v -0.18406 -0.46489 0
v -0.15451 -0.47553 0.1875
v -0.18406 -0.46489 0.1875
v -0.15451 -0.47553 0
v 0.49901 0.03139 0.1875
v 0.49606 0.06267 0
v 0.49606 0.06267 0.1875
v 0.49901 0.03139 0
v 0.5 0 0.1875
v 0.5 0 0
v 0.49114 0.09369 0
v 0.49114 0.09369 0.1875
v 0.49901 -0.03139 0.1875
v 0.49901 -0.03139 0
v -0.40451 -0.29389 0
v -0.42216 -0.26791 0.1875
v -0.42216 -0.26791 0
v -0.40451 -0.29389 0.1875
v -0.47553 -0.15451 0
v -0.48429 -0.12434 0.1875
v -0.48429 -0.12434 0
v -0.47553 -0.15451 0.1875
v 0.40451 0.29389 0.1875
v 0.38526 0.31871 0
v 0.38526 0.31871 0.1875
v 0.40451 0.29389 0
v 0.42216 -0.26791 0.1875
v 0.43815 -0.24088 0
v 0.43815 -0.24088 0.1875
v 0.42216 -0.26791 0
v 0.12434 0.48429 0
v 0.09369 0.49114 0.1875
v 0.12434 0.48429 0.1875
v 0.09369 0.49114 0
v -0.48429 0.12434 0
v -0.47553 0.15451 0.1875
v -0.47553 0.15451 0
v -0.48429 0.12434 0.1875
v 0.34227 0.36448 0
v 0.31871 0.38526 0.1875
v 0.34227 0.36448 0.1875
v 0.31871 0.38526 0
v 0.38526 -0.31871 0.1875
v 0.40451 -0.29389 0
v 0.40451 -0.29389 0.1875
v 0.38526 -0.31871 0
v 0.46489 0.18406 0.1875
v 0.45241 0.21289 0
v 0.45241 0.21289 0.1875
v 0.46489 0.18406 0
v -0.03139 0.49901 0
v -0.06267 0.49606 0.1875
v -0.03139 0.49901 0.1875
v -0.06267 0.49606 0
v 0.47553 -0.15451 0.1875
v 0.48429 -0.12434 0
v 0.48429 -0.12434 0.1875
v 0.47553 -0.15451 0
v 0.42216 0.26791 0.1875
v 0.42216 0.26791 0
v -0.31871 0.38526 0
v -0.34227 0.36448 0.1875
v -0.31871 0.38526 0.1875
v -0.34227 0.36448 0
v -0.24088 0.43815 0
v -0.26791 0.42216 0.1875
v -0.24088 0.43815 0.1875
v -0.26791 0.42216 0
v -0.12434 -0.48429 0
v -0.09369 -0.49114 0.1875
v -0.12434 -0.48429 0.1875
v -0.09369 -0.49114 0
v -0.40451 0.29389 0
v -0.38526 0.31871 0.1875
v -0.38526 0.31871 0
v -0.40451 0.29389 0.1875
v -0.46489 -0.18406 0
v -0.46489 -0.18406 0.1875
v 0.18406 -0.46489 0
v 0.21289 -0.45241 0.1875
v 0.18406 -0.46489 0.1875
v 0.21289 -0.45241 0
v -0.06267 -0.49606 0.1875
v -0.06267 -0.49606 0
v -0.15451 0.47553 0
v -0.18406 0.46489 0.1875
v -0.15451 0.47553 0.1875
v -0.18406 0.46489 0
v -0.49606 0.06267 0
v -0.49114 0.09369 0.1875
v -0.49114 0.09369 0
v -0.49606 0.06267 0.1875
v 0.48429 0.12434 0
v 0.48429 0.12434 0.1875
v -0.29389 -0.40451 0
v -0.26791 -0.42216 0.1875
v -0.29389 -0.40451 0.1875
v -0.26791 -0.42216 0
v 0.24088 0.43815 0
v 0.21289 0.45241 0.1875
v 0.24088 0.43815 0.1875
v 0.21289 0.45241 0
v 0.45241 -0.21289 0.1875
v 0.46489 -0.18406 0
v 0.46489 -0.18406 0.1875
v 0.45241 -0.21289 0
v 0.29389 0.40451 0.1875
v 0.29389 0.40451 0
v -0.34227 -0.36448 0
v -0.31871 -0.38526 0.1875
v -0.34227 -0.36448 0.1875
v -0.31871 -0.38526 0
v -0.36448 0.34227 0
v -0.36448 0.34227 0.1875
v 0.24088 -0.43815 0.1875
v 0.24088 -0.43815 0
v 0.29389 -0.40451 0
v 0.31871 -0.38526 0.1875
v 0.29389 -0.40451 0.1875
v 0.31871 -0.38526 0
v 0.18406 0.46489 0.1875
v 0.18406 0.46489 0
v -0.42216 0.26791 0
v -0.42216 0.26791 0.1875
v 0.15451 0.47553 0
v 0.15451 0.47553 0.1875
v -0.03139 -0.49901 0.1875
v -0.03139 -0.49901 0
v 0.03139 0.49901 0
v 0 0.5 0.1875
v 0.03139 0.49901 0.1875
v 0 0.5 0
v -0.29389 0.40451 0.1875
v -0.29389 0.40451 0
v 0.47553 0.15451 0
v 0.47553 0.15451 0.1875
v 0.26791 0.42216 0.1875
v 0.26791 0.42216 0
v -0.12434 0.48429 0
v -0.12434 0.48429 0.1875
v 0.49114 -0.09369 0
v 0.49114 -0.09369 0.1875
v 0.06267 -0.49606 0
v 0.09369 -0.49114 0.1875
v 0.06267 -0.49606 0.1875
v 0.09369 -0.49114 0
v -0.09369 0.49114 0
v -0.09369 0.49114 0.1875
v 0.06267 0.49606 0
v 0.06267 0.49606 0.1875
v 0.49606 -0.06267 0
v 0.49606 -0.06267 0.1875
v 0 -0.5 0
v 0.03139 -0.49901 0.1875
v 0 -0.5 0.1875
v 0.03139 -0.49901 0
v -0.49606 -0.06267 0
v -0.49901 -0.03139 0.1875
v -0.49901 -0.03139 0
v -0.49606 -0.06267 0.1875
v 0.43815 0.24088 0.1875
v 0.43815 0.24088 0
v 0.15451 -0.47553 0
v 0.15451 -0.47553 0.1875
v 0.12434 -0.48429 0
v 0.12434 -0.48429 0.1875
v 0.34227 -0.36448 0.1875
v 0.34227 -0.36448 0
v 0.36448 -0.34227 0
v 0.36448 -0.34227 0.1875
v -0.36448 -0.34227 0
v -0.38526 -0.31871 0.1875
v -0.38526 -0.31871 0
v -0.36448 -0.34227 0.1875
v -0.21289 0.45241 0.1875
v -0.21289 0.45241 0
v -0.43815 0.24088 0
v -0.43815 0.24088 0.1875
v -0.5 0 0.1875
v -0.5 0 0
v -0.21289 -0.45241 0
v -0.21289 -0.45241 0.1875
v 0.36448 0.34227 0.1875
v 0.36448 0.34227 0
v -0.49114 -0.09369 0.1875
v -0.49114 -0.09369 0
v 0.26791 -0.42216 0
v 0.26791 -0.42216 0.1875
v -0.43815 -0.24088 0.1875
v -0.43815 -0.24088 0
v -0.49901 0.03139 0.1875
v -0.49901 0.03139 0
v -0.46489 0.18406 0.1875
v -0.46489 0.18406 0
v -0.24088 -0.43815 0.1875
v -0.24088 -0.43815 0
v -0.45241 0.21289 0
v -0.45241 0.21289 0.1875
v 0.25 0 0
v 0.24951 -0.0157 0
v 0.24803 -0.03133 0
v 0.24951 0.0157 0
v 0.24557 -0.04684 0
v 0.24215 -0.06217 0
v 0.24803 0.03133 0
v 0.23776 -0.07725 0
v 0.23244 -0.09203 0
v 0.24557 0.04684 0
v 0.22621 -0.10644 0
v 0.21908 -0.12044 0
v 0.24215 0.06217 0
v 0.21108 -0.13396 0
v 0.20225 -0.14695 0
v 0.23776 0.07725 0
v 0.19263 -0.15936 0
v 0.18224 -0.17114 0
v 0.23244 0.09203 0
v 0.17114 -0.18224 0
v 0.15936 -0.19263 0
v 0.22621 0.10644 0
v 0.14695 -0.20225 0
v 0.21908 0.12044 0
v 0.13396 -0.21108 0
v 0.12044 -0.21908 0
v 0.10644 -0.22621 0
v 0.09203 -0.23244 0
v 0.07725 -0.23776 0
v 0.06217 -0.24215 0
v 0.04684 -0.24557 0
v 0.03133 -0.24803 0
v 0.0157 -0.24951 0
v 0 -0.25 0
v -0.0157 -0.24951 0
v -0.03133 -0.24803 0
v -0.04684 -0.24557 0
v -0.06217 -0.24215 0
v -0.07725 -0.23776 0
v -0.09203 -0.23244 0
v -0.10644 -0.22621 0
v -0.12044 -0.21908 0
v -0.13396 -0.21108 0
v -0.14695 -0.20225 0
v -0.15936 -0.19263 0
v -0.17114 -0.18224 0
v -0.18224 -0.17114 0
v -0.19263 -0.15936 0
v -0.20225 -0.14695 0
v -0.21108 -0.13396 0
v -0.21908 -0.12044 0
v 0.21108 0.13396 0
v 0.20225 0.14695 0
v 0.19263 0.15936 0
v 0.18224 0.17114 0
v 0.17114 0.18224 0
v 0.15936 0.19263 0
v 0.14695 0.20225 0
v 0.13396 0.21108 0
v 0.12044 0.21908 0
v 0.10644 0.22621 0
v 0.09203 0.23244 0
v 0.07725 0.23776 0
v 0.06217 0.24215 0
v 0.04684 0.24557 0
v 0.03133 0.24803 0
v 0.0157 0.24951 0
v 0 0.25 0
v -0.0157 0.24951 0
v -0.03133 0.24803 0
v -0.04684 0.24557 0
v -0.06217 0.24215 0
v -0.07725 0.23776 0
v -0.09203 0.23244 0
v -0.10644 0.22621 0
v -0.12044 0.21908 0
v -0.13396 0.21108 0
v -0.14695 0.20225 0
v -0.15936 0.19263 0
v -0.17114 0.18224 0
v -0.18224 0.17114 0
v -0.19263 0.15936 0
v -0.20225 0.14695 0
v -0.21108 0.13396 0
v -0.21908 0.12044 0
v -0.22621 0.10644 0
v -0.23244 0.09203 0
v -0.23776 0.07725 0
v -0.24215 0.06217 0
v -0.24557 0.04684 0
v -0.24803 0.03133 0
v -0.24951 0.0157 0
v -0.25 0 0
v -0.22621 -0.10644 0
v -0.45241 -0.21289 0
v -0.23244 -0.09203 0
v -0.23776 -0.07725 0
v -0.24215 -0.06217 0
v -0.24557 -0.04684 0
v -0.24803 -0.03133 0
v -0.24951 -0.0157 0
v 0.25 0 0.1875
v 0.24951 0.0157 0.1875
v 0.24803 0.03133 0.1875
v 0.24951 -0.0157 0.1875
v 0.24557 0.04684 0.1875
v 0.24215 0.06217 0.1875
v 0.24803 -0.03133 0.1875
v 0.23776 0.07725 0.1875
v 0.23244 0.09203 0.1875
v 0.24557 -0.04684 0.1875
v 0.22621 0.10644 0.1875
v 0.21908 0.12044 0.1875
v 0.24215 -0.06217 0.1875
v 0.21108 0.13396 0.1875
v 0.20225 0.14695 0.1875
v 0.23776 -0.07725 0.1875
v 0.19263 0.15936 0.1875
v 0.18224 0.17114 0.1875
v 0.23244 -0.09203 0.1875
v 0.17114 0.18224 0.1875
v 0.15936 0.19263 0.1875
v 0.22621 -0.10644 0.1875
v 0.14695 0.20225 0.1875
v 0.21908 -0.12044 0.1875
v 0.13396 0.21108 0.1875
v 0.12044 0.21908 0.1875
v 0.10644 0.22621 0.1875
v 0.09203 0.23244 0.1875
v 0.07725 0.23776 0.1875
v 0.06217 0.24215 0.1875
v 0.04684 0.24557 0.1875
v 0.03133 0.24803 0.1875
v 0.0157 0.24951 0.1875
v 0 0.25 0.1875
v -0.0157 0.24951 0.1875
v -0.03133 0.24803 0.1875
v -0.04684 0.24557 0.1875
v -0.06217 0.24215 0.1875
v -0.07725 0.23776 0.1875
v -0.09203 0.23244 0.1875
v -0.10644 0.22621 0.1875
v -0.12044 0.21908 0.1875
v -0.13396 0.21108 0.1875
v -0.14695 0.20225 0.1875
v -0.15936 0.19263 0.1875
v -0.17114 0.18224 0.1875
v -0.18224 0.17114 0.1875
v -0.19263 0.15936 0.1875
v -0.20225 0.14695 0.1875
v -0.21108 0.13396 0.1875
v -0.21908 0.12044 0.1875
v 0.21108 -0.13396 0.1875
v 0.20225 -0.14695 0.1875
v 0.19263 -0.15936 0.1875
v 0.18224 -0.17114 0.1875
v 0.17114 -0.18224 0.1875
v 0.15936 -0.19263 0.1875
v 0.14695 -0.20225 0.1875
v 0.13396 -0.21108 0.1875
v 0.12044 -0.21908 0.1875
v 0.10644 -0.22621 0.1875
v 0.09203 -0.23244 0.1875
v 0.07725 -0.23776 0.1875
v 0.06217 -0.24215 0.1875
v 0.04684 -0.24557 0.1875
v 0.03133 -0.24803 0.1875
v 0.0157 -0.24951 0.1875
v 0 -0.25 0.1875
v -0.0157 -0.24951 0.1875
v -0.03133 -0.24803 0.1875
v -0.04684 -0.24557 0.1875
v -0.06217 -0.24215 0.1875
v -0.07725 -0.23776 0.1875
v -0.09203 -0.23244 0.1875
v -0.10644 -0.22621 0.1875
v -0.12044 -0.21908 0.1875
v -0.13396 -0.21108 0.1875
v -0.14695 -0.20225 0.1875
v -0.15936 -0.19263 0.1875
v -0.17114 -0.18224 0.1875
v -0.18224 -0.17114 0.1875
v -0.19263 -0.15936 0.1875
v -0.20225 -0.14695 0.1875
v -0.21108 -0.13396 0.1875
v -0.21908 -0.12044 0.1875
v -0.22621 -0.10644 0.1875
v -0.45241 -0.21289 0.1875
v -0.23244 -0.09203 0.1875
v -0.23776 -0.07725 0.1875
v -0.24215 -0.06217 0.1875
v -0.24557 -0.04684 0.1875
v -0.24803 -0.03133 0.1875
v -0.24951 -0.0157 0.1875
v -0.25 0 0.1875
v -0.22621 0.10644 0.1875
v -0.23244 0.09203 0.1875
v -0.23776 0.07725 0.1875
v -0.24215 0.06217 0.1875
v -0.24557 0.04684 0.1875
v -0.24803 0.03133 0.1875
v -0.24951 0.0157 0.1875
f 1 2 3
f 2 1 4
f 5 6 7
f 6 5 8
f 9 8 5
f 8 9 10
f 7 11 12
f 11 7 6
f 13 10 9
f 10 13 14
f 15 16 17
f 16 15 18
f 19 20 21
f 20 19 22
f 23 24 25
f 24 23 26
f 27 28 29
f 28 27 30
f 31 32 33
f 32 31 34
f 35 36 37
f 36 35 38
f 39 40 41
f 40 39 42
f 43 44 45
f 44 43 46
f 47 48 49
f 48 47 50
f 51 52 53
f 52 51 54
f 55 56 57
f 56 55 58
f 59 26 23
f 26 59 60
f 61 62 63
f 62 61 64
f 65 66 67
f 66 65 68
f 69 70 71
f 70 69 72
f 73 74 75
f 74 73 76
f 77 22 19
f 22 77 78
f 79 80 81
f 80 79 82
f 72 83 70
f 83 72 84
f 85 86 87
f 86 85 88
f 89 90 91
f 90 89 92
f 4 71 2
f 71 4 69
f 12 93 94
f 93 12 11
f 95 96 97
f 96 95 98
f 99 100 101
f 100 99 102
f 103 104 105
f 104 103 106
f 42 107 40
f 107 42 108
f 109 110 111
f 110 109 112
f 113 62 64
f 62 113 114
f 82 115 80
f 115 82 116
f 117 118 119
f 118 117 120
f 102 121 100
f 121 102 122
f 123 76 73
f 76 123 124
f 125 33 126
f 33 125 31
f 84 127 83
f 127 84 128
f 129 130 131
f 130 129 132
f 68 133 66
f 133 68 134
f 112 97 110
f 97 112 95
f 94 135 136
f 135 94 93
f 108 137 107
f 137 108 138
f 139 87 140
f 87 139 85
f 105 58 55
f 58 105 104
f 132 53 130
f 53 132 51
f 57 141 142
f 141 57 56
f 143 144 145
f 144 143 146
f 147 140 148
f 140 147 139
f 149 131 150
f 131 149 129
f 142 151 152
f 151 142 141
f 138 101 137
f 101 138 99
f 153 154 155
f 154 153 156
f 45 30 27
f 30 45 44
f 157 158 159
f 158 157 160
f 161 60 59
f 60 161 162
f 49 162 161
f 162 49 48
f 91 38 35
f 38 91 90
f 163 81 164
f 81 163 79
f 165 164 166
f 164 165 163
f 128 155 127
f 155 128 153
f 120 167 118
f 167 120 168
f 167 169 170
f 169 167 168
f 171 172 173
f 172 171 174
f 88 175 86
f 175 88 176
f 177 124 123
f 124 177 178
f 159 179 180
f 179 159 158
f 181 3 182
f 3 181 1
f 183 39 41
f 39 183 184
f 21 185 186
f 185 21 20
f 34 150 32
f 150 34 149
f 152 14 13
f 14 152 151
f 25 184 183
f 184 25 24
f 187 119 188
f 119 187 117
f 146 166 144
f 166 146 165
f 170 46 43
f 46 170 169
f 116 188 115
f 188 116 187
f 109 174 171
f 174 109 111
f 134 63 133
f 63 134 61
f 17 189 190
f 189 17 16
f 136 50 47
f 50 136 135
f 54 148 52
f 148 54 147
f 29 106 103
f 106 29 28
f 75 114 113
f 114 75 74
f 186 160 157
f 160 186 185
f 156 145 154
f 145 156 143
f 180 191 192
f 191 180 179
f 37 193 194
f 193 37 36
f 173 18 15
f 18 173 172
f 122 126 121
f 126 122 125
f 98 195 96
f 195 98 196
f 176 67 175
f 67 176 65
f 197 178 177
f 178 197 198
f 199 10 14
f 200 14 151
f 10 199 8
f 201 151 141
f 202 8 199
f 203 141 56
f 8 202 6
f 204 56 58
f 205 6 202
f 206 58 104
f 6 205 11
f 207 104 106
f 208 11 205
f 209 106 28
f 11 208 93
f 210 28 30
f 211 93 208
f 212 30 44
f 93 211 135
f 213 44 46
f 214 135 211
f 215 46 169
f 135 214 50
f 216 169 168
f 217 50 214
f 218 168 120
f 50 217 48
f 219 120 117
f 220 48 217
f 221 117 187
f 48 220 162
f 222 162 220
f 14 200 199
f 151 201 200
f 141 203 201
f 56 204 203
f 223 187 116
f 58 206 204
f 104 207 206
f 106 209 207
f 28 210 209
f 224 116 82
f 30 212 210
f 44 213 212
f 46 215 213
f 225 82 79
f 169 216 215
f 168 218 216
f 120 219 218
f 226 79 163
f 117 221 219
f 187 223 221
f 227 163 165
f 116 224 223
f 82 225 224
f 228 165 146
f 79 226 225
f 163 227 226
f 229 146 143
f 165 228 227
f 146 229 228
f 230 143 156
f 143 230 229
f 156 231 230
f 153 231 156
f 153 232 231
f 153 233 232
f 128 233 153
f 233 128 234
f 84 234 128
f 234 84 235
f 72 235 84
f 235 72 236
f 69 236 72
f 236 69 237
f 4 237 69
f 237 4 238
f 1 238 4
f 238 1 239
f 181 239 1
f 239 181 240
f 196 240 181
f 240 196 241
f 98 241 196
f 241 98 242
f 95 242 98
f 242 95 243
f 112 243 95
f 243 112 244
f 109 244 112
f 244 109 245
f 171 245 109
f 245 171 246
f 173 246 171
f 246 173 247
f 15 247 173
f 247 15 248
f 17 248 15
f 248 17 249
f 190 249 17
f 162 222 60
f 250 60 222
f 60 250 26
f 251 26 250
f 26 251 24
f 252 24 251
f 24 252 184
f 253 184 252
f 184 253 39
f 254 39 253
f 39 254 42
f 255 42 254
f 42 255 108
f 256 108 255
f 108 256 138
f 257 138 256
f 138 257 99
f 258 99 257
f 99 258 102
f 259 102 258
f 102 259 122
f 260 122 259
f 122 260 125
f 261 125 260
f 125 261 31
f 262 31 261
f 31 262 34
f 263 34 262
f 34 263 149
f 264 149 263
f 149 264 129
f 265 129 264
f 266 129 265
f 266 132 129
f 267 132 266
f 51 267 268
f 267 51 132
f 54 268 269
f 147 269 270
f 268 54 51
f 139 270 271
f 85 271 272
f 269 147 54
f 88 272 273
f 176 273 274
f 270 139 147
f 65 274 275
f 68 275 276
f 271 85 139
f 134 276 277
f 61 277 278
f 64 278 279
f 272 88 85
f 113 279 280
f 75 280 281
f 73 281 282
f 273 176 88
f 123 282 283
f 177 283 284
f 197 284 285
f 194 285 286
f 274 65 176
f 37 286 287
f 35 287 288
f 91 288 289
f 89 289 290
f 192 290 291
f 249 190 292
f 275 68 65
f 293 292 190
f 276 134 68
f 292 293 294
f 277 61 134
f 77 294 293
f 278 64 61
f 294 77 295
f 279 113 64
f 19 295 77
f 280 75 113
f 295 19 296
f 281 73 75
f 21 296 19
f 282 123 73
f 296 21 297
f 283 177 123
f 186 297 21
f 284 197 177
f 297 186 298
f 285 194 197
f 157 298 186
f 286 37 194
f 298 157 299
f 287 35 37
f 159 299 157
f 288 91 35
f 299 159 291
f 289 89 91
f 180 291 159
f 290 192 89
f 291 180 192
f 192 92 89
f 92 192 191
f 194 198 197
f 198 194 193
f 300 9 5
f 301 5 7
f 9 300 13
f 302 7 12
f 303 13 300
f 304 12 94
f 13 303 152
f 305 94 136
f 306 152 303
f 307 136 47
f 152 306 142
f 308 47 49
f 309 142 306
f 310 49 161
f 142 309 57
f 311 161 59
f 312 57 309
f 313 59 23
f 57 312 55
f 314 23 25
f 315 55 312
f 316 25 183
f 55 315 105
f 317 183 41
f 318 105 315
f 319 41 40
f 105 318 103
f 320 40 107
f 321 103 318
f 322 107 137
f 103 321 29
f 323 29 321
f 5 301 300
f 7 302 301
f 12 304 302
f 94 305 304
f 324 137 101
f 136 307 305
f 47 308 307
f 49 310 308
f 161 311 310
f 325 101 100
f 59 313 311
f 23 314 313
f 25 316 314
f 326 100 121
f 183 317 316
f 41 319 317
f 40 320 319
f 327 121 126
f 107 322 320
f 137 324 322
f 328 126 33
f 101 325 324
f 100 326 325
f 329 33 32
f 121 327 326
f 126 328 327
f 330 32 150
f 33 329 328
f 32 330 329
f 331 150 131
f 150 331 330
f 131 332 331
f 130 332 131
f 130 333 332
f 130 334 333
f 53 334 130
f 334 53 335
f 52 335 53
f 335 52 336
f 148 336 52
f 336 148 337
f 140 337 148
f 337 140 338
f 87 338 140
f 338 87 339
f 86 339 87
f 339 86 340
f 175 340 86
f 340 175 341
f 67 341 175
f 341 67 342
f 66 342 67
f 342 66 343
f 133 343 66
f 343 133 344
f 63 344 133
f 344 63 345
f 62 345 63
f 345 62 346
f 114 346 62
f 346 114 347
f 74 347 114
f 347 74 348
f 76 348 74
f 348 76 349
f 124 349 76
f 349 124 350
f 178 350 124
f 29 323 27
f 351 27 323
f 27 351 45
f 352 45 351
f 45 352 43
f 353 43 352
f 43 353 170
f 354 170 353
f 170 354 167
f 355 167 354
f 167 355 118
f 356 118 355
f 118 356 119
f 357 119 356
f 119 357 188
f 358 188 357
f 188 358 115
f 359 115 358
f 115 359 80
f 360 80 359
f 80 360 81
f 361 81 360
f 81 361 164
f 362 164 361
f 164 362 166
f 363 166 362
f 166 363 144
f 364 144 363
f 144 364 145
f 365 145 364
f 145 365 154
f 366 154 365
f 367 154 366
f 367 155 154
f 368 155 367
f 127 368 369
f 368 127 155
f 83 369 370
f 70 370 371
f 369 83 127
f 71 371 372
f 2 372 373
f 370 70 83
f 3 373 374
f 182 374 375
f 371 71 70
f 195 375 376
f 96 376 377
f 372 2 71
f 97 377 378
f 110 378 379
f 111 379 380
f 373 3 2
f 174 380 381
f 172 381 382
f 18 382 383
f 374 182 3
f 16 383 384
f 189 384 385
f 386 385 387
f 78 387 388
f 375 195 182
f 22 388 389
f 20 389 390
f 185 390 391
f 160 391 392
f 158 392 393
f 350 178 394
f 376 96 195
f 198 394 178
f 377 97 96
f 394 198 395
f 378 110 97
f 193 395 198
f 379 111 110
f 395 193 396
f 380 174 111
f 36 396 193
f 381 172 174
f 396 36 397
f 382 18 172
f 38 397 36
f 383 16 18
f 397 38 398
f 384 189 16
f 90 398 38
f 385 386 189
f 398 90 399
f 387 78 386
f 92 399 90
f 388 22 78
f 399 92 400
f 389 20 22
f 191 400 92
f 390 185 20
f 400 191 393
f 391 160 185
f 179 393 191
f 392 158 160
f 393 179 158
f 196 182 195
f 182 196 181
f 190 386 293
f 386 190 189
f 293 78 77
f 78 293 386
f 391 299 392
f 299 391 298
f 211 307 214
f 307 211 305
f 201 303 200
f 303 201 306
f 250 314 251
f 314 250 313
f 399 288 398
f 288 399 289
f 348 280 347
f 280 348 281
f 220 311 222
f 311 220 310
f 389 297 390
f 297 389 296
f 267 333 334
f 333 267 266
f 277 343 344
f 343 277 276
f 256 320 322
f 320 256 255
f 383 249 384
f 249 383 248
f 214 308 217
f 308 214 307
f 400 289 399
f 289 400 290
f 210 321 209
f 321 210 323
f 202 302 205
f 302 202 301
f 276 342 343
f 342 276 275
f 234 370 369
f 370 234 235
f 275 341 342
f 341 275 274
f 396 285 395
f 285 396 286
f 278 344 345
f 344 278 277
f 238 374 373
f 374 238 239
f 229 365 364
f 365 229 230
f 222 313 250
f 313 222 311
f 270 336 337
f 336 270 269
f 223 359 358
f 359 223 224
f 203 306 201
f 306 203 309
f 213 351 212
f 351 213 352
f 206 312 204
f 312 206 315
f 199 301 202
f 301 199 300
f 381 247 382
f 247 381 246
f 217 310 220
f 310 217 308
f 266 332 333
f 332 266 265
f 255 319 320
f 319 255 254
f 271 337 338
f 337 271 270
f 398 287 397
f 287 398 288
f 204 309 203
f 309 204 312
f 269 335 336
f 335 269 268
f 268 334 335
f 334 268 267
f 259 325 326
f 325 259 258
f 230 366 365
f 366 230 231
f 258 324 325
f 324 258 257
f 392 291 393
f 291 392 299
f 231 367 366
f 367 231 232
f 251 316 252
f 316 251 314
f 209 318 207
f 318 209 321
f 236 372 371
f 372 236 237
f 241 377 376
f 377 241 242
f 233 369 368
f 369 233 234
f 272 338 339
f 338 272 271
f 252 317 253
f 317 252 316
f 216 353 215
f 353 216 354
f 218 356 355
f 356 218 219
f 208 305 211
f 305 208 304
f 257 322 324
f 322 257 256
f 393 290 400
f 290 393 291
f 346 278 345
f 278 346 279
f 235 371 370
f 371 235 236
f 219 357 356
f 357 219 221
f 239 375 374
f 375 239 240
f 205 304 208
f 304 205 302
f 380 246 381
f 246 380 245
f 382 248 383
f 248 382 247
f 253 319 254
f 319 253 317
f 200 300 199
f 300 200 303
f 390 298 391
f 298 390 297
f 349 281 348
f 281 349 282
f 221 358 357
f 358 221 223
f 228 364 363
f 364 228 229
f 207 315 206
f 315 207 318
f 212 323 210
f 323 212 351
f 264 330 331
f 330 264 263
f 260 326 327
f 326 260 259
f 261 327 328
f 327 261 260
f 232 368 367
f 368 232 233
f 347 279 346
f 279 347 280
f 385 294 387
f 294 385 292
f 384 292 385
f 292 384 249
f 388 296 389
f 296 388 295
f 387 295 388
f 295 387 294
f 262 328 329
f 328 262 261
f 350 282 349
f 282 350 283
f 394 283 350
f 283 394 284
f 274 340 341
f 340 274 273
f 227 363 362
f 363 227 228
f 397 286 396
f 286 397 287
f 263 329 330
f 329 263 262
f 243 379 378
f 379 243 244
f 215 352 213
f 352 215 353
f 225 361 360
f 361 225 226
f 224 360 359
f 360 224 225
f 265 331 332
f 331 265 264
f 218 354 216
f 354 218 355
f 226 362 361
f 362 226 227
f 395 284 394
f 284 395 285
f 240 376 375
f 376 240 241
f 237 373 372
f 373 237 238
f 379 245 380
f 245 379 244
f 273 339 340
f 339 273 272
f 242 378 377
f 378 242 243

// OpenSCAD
$fn = ($preview)? 20:100;
difference()
{
	cylinder(h = 0.1875, d = 1);
	cylinder(h = 0.1875, d = .5);
}
